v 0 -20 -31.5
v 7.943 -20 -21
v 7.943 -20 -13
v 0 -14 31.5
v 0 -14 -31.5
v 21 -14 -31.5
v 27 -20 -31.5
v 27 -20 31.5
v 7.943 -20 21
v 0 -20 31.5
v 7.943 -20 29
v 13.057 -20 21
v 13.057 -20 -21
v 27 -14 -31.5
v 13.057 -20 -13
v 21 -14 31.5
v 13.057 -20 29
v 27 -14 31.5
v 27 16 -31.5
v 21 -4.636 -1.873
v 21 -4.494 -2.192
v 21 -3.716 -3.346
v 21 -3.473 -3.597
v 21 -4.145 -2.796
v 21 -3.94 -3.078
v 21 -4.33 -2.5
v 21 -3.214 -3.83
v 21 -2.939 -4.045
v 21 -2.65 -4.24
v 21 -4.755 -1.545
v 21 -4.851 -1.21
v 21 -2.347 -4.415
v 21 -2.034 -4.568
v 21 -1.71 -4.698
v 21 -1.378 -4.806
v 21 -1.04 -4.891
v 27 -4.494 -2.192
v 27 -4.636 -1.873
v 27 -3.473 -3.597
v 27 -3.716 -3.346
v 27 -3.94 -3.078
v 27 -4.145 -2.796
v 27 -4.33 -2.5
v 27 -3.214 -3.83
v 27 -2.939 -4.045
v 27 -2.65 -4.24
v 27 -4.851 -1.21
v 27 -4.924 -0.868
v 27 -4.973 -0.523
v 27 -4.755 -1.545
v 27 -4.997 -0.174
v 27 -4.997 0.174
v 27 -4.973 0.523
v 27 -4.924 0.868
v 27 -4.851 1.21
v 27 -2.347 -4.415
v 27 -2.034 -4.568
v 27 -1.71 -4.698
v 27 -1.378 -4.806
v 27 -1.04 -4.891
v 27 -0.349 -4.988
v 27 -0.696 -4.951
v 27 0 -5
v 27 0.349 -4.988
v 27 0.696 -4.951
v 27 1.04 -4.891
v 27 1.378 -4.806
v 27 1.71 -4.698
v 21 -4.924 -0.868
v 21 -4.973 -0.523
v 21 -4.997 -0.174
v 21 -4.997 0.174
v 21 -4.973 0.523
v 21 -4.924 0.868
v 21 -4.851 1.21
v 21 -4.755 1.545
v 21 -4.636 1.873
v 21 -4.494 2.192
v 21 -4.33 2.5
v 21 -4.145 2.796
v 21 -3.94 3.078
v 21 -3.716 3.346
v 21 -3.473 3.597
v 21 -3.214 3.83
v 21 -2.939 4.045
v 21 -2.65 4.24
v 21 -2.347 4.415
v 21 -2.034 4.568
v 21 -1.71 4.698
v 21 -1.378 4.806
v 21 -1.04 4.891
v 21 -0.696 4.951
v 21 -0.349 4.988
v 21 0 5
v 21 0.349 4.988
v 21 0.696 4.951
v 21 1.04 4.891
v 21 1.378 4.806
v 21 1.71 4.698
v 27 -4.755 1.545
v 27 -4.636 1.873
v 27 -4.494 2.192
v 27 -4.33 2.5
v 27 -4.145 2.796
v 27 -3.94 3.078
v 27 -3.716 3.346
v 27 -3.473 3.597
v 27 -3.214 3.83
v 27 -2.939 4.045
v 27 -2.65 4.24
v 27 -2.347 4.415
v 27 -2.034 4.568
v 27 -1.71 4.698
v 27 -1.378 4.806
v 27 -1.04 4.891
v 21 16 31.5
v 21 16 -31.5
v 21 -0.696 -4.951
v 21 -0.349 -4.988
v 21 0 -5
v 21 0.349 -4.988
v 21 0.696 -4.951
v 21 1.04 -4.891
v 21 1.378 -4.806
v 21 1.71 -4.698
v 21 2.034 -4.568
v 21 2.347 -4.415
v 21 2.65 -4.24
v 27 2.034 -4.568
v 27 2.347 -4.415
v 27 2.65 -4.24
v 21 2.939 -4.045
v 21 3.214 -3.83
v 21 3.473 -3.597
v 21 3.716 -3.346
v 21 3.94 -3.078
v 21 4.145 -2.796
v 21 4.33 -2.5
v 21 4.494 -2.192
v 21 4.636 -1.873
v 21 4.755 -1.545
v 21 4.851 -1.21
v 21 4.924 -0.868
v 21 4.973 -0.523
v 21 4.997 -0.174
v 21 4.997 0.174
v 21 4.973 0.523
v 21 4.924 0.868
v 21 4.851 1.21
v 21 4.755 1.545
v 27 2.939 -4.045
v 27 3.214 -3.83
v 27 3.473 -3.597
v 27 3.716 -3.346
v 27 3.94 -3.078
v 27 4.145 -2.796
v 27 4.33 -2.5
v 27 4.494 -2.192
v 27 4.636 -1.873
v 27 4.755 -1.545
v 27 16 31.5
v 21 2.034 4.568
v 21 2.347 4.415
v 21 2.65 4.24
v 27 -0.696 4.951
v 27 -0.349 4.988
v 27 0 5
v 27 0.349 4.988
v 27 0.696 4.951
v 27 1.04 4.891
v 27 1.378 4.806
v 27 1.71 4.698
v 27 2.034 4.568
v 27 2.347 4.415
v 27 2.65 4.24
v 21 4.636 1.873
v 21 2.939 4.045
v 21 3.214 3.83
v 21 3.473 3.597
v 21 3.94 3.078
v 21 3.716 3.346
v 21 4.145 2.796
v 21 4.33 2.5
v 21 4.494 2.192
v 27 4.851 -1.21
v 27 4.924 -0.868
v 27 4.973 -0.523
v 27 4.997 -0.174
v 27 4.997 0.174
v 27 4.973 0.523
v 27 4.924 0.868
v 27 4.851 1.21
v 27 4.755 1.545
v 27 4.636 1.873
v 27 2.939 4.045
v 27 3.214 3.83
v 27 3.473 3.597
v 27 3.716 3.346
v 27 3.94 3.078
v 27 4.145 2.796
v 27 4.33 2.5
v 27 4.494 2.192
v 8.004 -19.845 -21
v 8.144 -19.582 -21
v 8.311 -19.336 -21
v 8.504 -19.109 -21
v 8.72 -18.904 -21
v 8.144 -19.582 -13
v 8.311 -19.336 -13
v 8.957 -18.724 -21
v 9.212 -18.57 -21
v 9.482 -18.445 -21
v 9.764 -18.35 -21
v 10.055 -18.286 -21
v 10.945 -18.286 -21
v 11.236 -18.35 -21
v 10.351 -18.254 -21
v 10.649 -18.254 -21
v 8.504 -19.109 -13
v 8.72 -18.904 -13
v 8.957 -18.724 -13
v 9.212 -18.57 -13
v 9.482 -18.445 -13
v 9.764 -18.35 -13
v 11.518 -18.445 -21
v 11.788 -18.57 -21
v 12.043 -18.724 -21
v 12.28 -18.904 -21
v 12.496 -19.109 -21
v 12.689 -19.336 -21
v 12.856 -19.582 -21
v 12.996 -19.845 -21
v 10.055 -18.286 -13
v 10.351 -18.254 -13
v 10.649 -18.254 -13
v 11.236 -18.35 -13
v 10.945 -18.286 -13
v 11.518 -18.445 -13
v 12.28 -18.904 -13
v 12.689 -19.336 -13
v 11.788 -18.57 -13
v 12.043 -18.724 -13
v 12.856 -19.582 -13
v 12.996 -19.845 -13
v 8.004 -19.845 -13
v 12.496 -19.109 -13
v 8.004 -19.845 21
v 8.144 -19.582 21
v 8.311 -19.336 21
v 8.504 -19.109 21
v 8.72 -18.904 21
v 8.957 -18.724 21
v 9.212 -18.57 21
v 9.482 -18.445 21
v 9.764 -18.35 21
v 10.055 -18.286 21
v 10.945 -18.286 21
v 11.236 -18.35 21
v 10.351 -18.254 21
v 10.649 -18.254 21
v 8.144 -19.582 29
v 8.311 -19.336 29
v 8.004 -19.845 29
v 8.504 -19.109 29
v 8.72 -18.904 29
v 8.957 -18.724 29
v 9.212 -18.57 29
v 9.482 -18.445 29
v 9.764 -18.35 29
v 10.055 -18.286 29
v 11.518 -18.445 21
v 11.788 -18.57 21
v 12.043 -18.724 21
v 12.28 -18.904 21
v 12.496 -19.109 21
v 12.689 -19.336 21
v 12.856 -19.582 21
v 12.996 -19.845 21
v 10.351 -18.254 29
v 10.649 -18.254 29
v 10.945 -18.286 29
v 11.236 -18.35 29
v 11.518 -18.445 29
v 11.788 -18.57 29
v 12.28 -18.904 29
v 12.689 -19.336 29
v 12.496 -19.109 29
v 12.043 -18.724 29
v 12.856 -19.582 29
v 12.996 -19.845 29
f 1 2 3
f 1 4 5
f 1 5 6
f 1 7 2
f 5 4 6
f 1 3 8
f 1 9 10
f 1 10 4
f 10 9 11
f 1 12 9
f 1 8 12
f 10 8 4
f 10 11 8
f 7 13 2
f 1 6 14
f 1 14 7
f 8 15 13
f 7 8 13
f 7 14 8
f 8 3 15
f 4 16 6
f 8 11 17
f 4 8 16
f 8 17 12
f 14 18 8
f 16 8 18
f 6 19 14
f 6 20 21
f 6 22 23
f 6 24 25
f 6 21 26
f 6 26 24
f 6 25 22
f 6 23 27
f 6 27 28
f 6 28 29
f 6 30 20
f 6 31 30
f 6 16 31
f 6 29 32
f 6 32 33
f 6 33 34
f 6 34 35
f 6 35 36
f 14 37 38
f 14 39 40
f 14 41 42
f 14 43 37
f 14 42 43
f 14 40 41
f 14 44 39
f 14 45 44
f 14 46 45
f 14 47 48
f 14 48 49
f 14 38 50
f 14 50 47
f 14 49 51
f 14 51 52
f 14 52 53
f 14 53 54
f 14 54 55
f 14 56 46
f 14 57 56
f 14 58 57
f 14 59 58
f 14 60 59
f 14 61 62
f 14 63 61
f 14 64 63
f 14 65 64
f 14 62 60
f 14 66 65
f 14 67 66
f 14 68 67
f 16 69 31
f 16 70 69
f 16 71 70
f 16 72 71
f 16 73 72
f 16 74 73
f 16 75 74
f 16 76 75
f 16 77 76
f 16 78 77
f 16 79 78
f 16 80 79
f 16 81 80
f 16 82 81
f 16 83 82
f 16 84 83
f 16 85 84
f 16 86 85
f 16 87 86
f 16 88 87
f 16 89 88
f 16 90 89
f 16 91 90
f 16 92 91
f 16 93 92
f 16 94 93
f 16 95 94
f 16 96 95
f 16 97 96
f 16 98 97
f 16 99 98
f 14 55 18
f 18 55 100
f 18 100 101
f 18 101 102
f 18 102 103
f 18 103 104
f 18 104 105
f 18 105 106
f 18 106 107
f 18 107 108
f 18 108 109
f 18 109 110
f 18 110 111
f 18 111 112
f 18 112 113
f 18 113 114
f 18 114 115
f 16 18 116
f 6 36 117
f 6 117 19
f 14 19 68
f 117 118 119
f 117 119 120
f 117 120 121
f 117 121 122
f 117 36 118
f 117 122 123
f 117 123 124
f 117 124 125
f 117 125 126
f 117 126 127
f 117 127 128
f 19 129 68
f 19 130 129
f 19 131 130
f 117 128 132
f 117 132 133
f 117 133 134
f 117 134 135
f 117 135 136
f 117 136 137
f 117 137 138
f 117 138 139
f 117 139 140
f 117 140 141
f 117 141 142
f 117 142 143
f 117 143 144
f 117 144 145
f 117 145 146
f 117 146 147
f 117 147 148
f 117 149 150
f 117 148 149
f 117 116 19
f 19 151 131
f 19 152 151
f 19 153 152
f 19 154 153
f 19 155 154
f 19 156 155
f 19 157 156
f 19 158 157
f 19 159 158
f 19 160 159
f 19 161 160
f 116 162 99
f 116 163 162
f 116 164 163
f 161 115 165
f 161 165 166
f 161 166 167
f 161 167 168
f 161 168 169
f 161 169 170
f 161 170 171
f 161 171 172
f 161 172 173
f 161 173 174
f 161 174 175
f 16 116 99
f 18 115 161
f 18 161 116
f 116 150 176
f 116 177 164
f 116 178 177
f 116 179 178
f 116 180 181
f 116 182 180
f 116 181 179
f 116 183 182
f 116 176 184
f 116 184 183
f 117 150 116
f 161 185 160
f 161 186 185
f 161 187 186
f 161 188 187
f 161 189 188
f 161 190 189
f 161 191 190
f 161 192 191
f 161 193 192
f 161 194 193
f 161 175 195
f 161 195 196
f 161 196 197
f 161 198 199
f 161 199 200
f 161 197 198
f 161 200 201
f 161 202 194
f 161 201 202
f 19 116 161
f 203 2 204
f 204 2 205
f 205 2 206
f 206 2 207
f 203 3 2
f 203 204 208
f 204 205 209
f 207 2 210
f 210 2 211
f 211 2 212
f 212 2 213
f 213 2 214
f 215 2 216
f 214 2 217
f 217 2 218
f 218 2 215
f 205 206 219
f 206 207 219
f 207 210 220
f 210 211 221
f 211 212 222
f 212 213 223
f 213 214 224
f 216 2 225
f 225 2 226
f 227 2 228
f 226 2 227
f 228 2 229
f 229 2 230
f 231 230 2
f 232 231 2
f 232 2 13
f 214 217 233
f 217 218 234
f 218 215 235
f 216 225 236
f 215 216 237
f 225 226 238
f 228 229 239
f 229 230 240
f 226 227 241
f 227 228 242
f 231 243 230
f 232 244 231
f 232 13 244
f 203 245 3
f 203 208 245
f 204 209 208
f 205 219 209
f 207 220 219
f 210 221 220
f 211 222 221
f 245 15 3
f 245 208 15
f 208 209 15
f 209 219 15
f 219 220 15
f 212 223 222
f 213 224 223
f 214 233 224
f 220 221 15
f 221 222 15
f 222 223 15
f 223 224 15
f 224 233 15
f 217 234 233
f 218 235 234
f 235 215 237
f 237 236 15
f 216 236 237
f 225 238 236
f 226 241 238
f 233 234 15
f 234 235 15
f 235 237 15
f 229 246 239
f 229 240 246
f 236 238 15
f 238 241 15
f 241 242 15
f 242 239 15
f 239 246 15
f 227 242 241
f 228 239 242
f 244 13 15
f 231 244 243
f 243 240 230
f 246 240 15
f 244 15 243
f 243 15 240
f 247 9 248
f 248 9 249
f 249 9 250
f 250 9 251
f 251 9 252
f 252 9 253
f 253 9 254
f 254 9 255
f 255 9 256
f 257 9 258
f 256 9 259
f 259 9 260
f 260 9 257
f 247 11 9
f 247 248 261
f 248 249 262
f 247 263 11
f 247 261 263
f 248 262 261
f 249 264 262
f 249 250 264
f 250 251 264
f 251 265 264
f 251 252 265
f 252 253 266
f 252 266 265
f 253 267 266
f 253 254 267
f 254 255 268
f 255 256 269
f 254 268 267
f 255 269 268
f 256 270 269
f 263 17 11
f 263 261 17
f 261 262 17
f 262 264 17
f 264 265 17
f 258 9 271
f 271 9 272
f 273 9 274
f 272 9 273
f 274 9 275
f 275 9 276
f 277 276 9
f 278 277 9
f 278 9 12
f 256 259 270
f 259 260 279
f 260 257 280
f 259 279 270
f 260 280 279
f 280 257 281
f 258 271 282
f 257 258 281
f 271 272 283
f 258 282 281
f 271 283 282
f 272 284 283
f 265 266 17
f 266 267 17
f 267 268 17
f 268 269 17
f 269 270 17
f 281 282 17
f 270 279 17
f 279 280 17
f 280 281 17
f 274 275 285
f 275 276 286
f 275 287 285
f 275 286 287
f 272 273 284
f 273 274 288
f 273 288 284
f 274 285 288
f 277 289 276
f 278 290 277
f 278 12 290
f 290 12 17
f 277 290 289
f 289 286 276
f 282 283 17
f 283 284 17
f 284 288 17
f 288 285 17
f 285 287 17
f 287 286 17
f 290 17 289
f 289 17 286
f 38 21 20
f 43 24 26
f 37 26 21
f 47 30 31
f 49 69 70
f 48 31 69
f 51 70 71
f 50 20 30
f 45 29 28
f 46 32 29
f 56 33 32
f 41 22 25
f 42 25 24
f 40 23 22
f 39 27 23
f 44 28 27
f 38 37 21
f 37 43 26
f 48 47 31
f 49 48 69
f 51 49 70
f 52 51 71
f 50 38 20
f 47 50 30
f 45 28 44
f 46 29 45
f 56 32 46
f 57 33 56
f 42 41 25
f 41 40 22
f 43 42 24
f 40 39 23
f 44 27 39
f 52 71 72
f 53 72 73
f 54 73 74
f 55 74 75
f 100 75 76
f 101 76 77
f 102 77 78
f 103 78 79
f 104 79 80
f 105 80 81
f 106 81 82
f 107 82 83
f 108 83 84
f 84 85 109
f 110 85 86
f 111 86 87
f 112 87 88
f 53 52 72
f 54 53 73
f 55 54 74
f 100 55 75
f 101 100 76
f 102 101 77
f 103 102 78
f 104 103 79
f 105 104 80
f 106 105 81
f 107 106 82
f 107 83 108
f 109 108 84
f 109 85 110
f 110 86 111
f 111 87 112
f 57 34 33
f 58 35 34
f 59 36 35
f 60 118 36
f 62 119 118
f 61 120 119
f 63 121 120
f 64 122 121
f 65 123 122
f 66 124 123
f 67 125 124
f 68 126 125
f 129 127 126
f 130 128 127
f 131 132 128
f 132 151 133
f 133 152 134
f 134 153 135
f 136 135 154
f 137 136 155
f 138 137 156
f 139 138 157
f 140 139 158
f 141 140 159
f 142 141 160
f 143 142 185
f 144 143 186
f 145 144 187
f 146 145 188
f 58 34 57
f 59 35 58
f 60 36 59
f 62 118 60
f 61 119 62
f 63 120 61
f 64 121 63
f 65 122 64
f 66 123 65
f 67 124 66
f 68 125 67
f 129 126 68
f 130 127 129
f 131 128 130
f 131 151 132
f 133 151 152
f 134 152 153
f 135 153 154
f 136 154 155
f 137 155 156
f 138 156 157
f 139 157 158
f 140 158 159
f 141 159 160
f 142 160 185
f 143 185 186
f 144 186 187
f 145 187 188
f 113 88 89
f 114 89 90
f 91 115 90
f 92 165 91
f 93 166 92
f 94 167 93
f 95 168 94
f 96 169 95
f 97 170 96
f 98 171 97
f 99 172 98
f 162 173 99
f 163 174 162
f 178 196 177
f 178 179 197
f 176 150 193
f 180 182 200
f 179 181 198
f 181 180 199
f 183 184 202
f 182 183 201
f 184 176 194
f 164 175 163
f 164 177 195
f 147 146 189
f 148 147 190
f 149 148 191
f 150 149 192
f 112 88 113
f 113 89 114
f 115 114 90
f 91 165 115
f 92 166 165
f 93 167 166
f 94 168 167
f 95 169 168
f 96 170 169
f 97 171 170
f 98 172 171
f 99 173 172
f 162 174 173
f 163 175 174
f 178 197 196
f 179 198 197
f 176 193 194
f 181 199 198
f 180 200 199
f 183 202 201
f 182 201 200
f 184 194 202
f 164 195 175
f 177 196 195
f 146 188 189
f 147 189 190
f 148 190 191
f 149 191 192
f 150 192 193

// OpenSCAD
// file: common.scad
// Common parameters for the window-opener brackets.
//
// Units: millimetres. All parts share these values so changes propagate.
// Render with:
//   openscad -o sash-bracket.stl sash-bracket.scad
//   openscad -o frame-bracket.stl frame-bracket.scad

// -------- hole / clearance sizes --------
M4_HOLE      = 4.5;   // self-tapper clearance in PVC
M6_CLEAR     = 6.5;   // clearance for M6 rod-end shank
M6_TAP       = 5.0;   // tap drill for M6 (tap-to-size in post)

// -------- target window --------
// Reference only — used by consumers of these bracket CAD files.
WIN_WIDTH    = 845;
WIN_HEIGHT   = 1325;
D_FROM_HINGE = 120;   // moving-anchor offset from the hinge side

// -------- KP08 pillow-block bearing (per grema3d datasheet, 2026-05-13) --------
// Datasheet variable names (KP08 column, shaft d = 8 mm):
//   L  = 55  total base width PERPENDICULAR to bore
//   A  = 13  body width ALONG bore (the bearing axis)
//   J  = 42  bolt-hole spacing (c-to-c)
//   N  = 5   bolt-hole diameter (M5)
//   H  = 14  base bottom → bore centre  (CRITICAL — was 17 in earlier guess)
//   H1 = 5   base thickness
//   H2 = 28  total height
//
// SCAD variable names retained for backwards-compat with rig-*.scad files,
// but their MEANINGS are now spec-driven, not measured-guess:
//   KP08_BASE_L      → L  (along Y, perpendicular to lead screw)
//   KP08_BASE_W      → A  (along X, along lead screw)
//   KP08_HOLE_SPACING → J
//   KP08_HOLE_D       → N (M5 clearance)
//   KP08_BORE_HEIGHT  → H
//   KP08_BODY_W       → body width along Y (perpendicular to bore)
//   KP08_TOTAL_H      → H2
KP08_BASE_L       = 55;       // L — base width perpendicular to bore
KP08_BASE_W       = 13;       // A — width ALONG bore axis (NB: lead screw direction)
KP08_HOLE_SPACING = 42;       // J — bolt-hole c-to-c
KP08_HOLE_D       = 5.5;      // M5 clearance (N = 5 mm bolt, + a hair)
KP08_HOLE_SLOT_L  = 8;        // slot length (legacy; some KP08s have slotted holes)
KP08_BORE_HEIGHT  = 14;       // H — base bottom to bore centre
KP08_BODY_W       = 30;       // approximate body width perpendicular to bore
KP08_TOTAL_H      = 28;       // H2 — total height

// -------- Prusa MK3 brass nut (per piese3d datasheet, 2026-05-13) --------
// Datasheet (Tr8x8 brass nut for MK3):
//   Flange OD      = 25       (was incorrectly measured as 19 — 19 is the
//                              bolt-hole *circle* diameter, not the flange OD)
//   Flange thk     = 4
//   Body OD        = 10
//   Body length    = 10
//   Total length   = 14       (= flange thk + body length)
//   Bolt circle    = Ø19      with 4 holes at 90°: 2× M3 threaded
//                              (vertically opposed) + 2× Ø4.1 clearance
//                              (horizontally opposed)
PRUSA_NUT_FLANGE_D       = 25;     // outer flange OD
PRUSA_NUT_FLANGE_THK     = 4;
PRUSA_NUT_BODY_D         = 10;
PRUSA_NUT_BODY_L         = 10;
PRUSA_NUT_TOTAL_L        = PRUSA_NUT_FLANGE_THK + PRUSA_NUT_BODY_L; // 14
PRUSA_NUT_BOLT_CIRCLE_D  = 19;     // diameter on which the 4 holes sit
PRUSA_NUT_M3_HOLE_D      = 3.4;    // M3 clearance (for the carriage side)
PRUSA_NUT_CLEAR_HOLE_D   = 4.1;    // the 2× Ø4.1 holes in the nut flange

// Legacy alias retained so existing rig-carriage.scad keeps compiling.
// Square-pattern spacing equivalent to the 19 mm bolt circle (diagonal 19,
// side = 19/√2 ≈ 13.43). Update rig-carriage.scad to use BOLT_CIRCLE_D for
// the correct alternating-hole pattern; this approximation gets close.
PRUSA_NUT_M3_SPACING     = 13.43;

// -------- LDO 42STH48-1684MAC NEMA17 (per LDO datasheet, 2026-05-13) --------
// Per the official LDO drawing (kb-3d datasheet):
//   Face            42.3 × 42.3 MAX
//   Body length     48 MAX
//   Mounting holes  4× M3 on 31 × 31 mm pattern, depth 4.5 min
//   Pilot boss      Ø22 (-0/-0.052)            ← was 22.5 in earlier guess
//   Shaft           Ø5 -0.002/-0.012, 24 ± 0.5 long
//   Shaft has a 15 mm flat (D-cut), 4.5 mm deep — not modelled here
NEMA17_FACE         = 42.3;
NEMA17_BODY_L       = 48;
NEMA17_HOLE_SPACING = 31;
NEMA17_HOLE_D       = 3.4;     // M3 clearance
NEMA17_HOLE_DEPTH   = 4.5;     // minimum tap depth into the motor face
NEMA17_BORE_D       = 22;      // pilot-boss OD (fits matching counterbore)
NEMA17_SHAFT_D      = 5;
NEMA17_SHAFT_L      = 24;
NEMA17_SHAFT_FLAT_L = 15;      // D-cut flat length, for coupler grip
NEMA17_SHAFT_FLAT_D = 4.5;     // D-cut depth from full Ø

// -------- Coupler --------
COUPLER_OD = 19;
COUPLER_L  = 25;

// -------- Lead screw --------
LEAD_SCREW_D    = 8;       // Tr8x8 outer diameter
LEAD_SCREW_LEAD = 8;       // 8 mm linear travel per revolution

// -------- bracket common --------
BRACKET_WIDTH  = 190;  // along the top rail (X axis in both parts)
PLATE_THK      = 5;    // plate wall thickness
PRINT_CLR      = 0.2;  // generic printer tolerance

// Render resolution — fine enough for holes, cheap enough for iteration.
$fa = 4;
$fs = 0.3;
// main file
// Lead-screw rig — far end bearing block.
//
// Holds KP08 #2 at the far end of the lead screw and supports the
// anti-rotation rod's far end. No motor, no rod-end attachment — this
// end of the rig hangs in space, supported only by the rig's structure
// (the parallel rails / lead screw between this and the motor mount).
//
// Print orientation: floor (the base) flat on the bed.
//
// Render:   openscad -o ../stl/rig-far-bearing.stl rig-far-bearing.scad

include <common.scad>;

// ---- design parameters ----
FLOOR_THK       = 6;
ANTI_ROT_OFFSET = 30;        // must match motor mount
ANTI_ROT_HOLE_D = 8.4;
END_WALL_THK    = 6;         // small wall at the far end to stop the anti-rot rod
SIDE_MARGIN     = 4;         // margin past KP08 (X direction; bore axis)
SIDE_MARGIN_Y   = 4;         // margin past KP08 base (Z direction; perpendicular)

// ---- derived ----
// Along X (bore axis): only need to fit A = KP08_BASE_W = 13 mm + a small
// margin + the end wall. Was previously sized to KP08_BASE_L (= 55 mm) along
// X, which was 4× larger than needed.
FLOOR_LEN_X     = KP08_BASE_W + 2 * SIDE_MARGIN + END_WALL_THK;
// Perpendicular to bore (Z): must support the KP08 base across L = 55 mm,
// and also reach down past the anti-rotation rod (offset 30) with margin.
FLOOR_W         = max(KP08_BASE_L + 2 * SIDE_MARGIN_Y, ANTI_ROT_OFFSET + 12);
KP08_START_X    = SIDE_MARGIN;
KP08_CENTER_X   = KP08_START_X + KP08_BASE_W / 2;
KP08_BASE_Y     = -KP08_BORE_HEIGHT;
FLOOR_TOP_Y     = KP08_BASE_Y;
FLOOR_BOTTOM_Y  = FLOOR_TOP_Y - FLOOR_THK;

module far_bearing() {
  difference() {
    union() {
      // Floor (KP08 sits on top)
      translate([0, FLOOR_BOTTOM_Y, -FLOOR_W / 2])
        cube([FLOOR_LEN_X, FLOOR_THK, FLOOR_W]);

      // End wall at the far end (X+ side) — supports the anti-rotation rod end
      translate([FLOOR_LEN_X - END_WALL_THK, FLOOR_TOP_Y, -FLOOR_W / 2])
        cube([END_WALL_THK, 30, FLOOR_W]);
    }

    // KP08 mounting holes — bolt-hole axis is PERPENDICULAR to the bore
    // (along Z in this local frame), spaced J = KP08_HOLE_SPACING.
    for (z = [-KP08_HOLE_SPACING / 2, KP08_HOLE_SPACING / 2])
      translate([KP08_CENTER_X, FLOOR_BOTTOM_Y - 1, z])
        cylinder(d = KP08_HOLE_D, h = FLOOR_THK + 2);

    // Anti-rotation rod hole through the end wall
    translate([FLOOR_LEN_X - END_WALL_THK - 1, -ANTI_ROT_OFFSET, 0])
      rotate([0, 90, 0])
        cylinder(d = ANTI_ROT_HOLE_D, h = END_WALL_THK + 5);

    // Lead screw clearance through the end wall (in case it pokes past KP08)
    translate([FLOOR_LEN_X - END_WALL_THK - 1, 0, 0])
      rotate([0, 90, 0])
        cylinder(d = LEAD_SCREW_D + 2, h = END_WALL_THK + 5);
  }
}

far_bearing();
